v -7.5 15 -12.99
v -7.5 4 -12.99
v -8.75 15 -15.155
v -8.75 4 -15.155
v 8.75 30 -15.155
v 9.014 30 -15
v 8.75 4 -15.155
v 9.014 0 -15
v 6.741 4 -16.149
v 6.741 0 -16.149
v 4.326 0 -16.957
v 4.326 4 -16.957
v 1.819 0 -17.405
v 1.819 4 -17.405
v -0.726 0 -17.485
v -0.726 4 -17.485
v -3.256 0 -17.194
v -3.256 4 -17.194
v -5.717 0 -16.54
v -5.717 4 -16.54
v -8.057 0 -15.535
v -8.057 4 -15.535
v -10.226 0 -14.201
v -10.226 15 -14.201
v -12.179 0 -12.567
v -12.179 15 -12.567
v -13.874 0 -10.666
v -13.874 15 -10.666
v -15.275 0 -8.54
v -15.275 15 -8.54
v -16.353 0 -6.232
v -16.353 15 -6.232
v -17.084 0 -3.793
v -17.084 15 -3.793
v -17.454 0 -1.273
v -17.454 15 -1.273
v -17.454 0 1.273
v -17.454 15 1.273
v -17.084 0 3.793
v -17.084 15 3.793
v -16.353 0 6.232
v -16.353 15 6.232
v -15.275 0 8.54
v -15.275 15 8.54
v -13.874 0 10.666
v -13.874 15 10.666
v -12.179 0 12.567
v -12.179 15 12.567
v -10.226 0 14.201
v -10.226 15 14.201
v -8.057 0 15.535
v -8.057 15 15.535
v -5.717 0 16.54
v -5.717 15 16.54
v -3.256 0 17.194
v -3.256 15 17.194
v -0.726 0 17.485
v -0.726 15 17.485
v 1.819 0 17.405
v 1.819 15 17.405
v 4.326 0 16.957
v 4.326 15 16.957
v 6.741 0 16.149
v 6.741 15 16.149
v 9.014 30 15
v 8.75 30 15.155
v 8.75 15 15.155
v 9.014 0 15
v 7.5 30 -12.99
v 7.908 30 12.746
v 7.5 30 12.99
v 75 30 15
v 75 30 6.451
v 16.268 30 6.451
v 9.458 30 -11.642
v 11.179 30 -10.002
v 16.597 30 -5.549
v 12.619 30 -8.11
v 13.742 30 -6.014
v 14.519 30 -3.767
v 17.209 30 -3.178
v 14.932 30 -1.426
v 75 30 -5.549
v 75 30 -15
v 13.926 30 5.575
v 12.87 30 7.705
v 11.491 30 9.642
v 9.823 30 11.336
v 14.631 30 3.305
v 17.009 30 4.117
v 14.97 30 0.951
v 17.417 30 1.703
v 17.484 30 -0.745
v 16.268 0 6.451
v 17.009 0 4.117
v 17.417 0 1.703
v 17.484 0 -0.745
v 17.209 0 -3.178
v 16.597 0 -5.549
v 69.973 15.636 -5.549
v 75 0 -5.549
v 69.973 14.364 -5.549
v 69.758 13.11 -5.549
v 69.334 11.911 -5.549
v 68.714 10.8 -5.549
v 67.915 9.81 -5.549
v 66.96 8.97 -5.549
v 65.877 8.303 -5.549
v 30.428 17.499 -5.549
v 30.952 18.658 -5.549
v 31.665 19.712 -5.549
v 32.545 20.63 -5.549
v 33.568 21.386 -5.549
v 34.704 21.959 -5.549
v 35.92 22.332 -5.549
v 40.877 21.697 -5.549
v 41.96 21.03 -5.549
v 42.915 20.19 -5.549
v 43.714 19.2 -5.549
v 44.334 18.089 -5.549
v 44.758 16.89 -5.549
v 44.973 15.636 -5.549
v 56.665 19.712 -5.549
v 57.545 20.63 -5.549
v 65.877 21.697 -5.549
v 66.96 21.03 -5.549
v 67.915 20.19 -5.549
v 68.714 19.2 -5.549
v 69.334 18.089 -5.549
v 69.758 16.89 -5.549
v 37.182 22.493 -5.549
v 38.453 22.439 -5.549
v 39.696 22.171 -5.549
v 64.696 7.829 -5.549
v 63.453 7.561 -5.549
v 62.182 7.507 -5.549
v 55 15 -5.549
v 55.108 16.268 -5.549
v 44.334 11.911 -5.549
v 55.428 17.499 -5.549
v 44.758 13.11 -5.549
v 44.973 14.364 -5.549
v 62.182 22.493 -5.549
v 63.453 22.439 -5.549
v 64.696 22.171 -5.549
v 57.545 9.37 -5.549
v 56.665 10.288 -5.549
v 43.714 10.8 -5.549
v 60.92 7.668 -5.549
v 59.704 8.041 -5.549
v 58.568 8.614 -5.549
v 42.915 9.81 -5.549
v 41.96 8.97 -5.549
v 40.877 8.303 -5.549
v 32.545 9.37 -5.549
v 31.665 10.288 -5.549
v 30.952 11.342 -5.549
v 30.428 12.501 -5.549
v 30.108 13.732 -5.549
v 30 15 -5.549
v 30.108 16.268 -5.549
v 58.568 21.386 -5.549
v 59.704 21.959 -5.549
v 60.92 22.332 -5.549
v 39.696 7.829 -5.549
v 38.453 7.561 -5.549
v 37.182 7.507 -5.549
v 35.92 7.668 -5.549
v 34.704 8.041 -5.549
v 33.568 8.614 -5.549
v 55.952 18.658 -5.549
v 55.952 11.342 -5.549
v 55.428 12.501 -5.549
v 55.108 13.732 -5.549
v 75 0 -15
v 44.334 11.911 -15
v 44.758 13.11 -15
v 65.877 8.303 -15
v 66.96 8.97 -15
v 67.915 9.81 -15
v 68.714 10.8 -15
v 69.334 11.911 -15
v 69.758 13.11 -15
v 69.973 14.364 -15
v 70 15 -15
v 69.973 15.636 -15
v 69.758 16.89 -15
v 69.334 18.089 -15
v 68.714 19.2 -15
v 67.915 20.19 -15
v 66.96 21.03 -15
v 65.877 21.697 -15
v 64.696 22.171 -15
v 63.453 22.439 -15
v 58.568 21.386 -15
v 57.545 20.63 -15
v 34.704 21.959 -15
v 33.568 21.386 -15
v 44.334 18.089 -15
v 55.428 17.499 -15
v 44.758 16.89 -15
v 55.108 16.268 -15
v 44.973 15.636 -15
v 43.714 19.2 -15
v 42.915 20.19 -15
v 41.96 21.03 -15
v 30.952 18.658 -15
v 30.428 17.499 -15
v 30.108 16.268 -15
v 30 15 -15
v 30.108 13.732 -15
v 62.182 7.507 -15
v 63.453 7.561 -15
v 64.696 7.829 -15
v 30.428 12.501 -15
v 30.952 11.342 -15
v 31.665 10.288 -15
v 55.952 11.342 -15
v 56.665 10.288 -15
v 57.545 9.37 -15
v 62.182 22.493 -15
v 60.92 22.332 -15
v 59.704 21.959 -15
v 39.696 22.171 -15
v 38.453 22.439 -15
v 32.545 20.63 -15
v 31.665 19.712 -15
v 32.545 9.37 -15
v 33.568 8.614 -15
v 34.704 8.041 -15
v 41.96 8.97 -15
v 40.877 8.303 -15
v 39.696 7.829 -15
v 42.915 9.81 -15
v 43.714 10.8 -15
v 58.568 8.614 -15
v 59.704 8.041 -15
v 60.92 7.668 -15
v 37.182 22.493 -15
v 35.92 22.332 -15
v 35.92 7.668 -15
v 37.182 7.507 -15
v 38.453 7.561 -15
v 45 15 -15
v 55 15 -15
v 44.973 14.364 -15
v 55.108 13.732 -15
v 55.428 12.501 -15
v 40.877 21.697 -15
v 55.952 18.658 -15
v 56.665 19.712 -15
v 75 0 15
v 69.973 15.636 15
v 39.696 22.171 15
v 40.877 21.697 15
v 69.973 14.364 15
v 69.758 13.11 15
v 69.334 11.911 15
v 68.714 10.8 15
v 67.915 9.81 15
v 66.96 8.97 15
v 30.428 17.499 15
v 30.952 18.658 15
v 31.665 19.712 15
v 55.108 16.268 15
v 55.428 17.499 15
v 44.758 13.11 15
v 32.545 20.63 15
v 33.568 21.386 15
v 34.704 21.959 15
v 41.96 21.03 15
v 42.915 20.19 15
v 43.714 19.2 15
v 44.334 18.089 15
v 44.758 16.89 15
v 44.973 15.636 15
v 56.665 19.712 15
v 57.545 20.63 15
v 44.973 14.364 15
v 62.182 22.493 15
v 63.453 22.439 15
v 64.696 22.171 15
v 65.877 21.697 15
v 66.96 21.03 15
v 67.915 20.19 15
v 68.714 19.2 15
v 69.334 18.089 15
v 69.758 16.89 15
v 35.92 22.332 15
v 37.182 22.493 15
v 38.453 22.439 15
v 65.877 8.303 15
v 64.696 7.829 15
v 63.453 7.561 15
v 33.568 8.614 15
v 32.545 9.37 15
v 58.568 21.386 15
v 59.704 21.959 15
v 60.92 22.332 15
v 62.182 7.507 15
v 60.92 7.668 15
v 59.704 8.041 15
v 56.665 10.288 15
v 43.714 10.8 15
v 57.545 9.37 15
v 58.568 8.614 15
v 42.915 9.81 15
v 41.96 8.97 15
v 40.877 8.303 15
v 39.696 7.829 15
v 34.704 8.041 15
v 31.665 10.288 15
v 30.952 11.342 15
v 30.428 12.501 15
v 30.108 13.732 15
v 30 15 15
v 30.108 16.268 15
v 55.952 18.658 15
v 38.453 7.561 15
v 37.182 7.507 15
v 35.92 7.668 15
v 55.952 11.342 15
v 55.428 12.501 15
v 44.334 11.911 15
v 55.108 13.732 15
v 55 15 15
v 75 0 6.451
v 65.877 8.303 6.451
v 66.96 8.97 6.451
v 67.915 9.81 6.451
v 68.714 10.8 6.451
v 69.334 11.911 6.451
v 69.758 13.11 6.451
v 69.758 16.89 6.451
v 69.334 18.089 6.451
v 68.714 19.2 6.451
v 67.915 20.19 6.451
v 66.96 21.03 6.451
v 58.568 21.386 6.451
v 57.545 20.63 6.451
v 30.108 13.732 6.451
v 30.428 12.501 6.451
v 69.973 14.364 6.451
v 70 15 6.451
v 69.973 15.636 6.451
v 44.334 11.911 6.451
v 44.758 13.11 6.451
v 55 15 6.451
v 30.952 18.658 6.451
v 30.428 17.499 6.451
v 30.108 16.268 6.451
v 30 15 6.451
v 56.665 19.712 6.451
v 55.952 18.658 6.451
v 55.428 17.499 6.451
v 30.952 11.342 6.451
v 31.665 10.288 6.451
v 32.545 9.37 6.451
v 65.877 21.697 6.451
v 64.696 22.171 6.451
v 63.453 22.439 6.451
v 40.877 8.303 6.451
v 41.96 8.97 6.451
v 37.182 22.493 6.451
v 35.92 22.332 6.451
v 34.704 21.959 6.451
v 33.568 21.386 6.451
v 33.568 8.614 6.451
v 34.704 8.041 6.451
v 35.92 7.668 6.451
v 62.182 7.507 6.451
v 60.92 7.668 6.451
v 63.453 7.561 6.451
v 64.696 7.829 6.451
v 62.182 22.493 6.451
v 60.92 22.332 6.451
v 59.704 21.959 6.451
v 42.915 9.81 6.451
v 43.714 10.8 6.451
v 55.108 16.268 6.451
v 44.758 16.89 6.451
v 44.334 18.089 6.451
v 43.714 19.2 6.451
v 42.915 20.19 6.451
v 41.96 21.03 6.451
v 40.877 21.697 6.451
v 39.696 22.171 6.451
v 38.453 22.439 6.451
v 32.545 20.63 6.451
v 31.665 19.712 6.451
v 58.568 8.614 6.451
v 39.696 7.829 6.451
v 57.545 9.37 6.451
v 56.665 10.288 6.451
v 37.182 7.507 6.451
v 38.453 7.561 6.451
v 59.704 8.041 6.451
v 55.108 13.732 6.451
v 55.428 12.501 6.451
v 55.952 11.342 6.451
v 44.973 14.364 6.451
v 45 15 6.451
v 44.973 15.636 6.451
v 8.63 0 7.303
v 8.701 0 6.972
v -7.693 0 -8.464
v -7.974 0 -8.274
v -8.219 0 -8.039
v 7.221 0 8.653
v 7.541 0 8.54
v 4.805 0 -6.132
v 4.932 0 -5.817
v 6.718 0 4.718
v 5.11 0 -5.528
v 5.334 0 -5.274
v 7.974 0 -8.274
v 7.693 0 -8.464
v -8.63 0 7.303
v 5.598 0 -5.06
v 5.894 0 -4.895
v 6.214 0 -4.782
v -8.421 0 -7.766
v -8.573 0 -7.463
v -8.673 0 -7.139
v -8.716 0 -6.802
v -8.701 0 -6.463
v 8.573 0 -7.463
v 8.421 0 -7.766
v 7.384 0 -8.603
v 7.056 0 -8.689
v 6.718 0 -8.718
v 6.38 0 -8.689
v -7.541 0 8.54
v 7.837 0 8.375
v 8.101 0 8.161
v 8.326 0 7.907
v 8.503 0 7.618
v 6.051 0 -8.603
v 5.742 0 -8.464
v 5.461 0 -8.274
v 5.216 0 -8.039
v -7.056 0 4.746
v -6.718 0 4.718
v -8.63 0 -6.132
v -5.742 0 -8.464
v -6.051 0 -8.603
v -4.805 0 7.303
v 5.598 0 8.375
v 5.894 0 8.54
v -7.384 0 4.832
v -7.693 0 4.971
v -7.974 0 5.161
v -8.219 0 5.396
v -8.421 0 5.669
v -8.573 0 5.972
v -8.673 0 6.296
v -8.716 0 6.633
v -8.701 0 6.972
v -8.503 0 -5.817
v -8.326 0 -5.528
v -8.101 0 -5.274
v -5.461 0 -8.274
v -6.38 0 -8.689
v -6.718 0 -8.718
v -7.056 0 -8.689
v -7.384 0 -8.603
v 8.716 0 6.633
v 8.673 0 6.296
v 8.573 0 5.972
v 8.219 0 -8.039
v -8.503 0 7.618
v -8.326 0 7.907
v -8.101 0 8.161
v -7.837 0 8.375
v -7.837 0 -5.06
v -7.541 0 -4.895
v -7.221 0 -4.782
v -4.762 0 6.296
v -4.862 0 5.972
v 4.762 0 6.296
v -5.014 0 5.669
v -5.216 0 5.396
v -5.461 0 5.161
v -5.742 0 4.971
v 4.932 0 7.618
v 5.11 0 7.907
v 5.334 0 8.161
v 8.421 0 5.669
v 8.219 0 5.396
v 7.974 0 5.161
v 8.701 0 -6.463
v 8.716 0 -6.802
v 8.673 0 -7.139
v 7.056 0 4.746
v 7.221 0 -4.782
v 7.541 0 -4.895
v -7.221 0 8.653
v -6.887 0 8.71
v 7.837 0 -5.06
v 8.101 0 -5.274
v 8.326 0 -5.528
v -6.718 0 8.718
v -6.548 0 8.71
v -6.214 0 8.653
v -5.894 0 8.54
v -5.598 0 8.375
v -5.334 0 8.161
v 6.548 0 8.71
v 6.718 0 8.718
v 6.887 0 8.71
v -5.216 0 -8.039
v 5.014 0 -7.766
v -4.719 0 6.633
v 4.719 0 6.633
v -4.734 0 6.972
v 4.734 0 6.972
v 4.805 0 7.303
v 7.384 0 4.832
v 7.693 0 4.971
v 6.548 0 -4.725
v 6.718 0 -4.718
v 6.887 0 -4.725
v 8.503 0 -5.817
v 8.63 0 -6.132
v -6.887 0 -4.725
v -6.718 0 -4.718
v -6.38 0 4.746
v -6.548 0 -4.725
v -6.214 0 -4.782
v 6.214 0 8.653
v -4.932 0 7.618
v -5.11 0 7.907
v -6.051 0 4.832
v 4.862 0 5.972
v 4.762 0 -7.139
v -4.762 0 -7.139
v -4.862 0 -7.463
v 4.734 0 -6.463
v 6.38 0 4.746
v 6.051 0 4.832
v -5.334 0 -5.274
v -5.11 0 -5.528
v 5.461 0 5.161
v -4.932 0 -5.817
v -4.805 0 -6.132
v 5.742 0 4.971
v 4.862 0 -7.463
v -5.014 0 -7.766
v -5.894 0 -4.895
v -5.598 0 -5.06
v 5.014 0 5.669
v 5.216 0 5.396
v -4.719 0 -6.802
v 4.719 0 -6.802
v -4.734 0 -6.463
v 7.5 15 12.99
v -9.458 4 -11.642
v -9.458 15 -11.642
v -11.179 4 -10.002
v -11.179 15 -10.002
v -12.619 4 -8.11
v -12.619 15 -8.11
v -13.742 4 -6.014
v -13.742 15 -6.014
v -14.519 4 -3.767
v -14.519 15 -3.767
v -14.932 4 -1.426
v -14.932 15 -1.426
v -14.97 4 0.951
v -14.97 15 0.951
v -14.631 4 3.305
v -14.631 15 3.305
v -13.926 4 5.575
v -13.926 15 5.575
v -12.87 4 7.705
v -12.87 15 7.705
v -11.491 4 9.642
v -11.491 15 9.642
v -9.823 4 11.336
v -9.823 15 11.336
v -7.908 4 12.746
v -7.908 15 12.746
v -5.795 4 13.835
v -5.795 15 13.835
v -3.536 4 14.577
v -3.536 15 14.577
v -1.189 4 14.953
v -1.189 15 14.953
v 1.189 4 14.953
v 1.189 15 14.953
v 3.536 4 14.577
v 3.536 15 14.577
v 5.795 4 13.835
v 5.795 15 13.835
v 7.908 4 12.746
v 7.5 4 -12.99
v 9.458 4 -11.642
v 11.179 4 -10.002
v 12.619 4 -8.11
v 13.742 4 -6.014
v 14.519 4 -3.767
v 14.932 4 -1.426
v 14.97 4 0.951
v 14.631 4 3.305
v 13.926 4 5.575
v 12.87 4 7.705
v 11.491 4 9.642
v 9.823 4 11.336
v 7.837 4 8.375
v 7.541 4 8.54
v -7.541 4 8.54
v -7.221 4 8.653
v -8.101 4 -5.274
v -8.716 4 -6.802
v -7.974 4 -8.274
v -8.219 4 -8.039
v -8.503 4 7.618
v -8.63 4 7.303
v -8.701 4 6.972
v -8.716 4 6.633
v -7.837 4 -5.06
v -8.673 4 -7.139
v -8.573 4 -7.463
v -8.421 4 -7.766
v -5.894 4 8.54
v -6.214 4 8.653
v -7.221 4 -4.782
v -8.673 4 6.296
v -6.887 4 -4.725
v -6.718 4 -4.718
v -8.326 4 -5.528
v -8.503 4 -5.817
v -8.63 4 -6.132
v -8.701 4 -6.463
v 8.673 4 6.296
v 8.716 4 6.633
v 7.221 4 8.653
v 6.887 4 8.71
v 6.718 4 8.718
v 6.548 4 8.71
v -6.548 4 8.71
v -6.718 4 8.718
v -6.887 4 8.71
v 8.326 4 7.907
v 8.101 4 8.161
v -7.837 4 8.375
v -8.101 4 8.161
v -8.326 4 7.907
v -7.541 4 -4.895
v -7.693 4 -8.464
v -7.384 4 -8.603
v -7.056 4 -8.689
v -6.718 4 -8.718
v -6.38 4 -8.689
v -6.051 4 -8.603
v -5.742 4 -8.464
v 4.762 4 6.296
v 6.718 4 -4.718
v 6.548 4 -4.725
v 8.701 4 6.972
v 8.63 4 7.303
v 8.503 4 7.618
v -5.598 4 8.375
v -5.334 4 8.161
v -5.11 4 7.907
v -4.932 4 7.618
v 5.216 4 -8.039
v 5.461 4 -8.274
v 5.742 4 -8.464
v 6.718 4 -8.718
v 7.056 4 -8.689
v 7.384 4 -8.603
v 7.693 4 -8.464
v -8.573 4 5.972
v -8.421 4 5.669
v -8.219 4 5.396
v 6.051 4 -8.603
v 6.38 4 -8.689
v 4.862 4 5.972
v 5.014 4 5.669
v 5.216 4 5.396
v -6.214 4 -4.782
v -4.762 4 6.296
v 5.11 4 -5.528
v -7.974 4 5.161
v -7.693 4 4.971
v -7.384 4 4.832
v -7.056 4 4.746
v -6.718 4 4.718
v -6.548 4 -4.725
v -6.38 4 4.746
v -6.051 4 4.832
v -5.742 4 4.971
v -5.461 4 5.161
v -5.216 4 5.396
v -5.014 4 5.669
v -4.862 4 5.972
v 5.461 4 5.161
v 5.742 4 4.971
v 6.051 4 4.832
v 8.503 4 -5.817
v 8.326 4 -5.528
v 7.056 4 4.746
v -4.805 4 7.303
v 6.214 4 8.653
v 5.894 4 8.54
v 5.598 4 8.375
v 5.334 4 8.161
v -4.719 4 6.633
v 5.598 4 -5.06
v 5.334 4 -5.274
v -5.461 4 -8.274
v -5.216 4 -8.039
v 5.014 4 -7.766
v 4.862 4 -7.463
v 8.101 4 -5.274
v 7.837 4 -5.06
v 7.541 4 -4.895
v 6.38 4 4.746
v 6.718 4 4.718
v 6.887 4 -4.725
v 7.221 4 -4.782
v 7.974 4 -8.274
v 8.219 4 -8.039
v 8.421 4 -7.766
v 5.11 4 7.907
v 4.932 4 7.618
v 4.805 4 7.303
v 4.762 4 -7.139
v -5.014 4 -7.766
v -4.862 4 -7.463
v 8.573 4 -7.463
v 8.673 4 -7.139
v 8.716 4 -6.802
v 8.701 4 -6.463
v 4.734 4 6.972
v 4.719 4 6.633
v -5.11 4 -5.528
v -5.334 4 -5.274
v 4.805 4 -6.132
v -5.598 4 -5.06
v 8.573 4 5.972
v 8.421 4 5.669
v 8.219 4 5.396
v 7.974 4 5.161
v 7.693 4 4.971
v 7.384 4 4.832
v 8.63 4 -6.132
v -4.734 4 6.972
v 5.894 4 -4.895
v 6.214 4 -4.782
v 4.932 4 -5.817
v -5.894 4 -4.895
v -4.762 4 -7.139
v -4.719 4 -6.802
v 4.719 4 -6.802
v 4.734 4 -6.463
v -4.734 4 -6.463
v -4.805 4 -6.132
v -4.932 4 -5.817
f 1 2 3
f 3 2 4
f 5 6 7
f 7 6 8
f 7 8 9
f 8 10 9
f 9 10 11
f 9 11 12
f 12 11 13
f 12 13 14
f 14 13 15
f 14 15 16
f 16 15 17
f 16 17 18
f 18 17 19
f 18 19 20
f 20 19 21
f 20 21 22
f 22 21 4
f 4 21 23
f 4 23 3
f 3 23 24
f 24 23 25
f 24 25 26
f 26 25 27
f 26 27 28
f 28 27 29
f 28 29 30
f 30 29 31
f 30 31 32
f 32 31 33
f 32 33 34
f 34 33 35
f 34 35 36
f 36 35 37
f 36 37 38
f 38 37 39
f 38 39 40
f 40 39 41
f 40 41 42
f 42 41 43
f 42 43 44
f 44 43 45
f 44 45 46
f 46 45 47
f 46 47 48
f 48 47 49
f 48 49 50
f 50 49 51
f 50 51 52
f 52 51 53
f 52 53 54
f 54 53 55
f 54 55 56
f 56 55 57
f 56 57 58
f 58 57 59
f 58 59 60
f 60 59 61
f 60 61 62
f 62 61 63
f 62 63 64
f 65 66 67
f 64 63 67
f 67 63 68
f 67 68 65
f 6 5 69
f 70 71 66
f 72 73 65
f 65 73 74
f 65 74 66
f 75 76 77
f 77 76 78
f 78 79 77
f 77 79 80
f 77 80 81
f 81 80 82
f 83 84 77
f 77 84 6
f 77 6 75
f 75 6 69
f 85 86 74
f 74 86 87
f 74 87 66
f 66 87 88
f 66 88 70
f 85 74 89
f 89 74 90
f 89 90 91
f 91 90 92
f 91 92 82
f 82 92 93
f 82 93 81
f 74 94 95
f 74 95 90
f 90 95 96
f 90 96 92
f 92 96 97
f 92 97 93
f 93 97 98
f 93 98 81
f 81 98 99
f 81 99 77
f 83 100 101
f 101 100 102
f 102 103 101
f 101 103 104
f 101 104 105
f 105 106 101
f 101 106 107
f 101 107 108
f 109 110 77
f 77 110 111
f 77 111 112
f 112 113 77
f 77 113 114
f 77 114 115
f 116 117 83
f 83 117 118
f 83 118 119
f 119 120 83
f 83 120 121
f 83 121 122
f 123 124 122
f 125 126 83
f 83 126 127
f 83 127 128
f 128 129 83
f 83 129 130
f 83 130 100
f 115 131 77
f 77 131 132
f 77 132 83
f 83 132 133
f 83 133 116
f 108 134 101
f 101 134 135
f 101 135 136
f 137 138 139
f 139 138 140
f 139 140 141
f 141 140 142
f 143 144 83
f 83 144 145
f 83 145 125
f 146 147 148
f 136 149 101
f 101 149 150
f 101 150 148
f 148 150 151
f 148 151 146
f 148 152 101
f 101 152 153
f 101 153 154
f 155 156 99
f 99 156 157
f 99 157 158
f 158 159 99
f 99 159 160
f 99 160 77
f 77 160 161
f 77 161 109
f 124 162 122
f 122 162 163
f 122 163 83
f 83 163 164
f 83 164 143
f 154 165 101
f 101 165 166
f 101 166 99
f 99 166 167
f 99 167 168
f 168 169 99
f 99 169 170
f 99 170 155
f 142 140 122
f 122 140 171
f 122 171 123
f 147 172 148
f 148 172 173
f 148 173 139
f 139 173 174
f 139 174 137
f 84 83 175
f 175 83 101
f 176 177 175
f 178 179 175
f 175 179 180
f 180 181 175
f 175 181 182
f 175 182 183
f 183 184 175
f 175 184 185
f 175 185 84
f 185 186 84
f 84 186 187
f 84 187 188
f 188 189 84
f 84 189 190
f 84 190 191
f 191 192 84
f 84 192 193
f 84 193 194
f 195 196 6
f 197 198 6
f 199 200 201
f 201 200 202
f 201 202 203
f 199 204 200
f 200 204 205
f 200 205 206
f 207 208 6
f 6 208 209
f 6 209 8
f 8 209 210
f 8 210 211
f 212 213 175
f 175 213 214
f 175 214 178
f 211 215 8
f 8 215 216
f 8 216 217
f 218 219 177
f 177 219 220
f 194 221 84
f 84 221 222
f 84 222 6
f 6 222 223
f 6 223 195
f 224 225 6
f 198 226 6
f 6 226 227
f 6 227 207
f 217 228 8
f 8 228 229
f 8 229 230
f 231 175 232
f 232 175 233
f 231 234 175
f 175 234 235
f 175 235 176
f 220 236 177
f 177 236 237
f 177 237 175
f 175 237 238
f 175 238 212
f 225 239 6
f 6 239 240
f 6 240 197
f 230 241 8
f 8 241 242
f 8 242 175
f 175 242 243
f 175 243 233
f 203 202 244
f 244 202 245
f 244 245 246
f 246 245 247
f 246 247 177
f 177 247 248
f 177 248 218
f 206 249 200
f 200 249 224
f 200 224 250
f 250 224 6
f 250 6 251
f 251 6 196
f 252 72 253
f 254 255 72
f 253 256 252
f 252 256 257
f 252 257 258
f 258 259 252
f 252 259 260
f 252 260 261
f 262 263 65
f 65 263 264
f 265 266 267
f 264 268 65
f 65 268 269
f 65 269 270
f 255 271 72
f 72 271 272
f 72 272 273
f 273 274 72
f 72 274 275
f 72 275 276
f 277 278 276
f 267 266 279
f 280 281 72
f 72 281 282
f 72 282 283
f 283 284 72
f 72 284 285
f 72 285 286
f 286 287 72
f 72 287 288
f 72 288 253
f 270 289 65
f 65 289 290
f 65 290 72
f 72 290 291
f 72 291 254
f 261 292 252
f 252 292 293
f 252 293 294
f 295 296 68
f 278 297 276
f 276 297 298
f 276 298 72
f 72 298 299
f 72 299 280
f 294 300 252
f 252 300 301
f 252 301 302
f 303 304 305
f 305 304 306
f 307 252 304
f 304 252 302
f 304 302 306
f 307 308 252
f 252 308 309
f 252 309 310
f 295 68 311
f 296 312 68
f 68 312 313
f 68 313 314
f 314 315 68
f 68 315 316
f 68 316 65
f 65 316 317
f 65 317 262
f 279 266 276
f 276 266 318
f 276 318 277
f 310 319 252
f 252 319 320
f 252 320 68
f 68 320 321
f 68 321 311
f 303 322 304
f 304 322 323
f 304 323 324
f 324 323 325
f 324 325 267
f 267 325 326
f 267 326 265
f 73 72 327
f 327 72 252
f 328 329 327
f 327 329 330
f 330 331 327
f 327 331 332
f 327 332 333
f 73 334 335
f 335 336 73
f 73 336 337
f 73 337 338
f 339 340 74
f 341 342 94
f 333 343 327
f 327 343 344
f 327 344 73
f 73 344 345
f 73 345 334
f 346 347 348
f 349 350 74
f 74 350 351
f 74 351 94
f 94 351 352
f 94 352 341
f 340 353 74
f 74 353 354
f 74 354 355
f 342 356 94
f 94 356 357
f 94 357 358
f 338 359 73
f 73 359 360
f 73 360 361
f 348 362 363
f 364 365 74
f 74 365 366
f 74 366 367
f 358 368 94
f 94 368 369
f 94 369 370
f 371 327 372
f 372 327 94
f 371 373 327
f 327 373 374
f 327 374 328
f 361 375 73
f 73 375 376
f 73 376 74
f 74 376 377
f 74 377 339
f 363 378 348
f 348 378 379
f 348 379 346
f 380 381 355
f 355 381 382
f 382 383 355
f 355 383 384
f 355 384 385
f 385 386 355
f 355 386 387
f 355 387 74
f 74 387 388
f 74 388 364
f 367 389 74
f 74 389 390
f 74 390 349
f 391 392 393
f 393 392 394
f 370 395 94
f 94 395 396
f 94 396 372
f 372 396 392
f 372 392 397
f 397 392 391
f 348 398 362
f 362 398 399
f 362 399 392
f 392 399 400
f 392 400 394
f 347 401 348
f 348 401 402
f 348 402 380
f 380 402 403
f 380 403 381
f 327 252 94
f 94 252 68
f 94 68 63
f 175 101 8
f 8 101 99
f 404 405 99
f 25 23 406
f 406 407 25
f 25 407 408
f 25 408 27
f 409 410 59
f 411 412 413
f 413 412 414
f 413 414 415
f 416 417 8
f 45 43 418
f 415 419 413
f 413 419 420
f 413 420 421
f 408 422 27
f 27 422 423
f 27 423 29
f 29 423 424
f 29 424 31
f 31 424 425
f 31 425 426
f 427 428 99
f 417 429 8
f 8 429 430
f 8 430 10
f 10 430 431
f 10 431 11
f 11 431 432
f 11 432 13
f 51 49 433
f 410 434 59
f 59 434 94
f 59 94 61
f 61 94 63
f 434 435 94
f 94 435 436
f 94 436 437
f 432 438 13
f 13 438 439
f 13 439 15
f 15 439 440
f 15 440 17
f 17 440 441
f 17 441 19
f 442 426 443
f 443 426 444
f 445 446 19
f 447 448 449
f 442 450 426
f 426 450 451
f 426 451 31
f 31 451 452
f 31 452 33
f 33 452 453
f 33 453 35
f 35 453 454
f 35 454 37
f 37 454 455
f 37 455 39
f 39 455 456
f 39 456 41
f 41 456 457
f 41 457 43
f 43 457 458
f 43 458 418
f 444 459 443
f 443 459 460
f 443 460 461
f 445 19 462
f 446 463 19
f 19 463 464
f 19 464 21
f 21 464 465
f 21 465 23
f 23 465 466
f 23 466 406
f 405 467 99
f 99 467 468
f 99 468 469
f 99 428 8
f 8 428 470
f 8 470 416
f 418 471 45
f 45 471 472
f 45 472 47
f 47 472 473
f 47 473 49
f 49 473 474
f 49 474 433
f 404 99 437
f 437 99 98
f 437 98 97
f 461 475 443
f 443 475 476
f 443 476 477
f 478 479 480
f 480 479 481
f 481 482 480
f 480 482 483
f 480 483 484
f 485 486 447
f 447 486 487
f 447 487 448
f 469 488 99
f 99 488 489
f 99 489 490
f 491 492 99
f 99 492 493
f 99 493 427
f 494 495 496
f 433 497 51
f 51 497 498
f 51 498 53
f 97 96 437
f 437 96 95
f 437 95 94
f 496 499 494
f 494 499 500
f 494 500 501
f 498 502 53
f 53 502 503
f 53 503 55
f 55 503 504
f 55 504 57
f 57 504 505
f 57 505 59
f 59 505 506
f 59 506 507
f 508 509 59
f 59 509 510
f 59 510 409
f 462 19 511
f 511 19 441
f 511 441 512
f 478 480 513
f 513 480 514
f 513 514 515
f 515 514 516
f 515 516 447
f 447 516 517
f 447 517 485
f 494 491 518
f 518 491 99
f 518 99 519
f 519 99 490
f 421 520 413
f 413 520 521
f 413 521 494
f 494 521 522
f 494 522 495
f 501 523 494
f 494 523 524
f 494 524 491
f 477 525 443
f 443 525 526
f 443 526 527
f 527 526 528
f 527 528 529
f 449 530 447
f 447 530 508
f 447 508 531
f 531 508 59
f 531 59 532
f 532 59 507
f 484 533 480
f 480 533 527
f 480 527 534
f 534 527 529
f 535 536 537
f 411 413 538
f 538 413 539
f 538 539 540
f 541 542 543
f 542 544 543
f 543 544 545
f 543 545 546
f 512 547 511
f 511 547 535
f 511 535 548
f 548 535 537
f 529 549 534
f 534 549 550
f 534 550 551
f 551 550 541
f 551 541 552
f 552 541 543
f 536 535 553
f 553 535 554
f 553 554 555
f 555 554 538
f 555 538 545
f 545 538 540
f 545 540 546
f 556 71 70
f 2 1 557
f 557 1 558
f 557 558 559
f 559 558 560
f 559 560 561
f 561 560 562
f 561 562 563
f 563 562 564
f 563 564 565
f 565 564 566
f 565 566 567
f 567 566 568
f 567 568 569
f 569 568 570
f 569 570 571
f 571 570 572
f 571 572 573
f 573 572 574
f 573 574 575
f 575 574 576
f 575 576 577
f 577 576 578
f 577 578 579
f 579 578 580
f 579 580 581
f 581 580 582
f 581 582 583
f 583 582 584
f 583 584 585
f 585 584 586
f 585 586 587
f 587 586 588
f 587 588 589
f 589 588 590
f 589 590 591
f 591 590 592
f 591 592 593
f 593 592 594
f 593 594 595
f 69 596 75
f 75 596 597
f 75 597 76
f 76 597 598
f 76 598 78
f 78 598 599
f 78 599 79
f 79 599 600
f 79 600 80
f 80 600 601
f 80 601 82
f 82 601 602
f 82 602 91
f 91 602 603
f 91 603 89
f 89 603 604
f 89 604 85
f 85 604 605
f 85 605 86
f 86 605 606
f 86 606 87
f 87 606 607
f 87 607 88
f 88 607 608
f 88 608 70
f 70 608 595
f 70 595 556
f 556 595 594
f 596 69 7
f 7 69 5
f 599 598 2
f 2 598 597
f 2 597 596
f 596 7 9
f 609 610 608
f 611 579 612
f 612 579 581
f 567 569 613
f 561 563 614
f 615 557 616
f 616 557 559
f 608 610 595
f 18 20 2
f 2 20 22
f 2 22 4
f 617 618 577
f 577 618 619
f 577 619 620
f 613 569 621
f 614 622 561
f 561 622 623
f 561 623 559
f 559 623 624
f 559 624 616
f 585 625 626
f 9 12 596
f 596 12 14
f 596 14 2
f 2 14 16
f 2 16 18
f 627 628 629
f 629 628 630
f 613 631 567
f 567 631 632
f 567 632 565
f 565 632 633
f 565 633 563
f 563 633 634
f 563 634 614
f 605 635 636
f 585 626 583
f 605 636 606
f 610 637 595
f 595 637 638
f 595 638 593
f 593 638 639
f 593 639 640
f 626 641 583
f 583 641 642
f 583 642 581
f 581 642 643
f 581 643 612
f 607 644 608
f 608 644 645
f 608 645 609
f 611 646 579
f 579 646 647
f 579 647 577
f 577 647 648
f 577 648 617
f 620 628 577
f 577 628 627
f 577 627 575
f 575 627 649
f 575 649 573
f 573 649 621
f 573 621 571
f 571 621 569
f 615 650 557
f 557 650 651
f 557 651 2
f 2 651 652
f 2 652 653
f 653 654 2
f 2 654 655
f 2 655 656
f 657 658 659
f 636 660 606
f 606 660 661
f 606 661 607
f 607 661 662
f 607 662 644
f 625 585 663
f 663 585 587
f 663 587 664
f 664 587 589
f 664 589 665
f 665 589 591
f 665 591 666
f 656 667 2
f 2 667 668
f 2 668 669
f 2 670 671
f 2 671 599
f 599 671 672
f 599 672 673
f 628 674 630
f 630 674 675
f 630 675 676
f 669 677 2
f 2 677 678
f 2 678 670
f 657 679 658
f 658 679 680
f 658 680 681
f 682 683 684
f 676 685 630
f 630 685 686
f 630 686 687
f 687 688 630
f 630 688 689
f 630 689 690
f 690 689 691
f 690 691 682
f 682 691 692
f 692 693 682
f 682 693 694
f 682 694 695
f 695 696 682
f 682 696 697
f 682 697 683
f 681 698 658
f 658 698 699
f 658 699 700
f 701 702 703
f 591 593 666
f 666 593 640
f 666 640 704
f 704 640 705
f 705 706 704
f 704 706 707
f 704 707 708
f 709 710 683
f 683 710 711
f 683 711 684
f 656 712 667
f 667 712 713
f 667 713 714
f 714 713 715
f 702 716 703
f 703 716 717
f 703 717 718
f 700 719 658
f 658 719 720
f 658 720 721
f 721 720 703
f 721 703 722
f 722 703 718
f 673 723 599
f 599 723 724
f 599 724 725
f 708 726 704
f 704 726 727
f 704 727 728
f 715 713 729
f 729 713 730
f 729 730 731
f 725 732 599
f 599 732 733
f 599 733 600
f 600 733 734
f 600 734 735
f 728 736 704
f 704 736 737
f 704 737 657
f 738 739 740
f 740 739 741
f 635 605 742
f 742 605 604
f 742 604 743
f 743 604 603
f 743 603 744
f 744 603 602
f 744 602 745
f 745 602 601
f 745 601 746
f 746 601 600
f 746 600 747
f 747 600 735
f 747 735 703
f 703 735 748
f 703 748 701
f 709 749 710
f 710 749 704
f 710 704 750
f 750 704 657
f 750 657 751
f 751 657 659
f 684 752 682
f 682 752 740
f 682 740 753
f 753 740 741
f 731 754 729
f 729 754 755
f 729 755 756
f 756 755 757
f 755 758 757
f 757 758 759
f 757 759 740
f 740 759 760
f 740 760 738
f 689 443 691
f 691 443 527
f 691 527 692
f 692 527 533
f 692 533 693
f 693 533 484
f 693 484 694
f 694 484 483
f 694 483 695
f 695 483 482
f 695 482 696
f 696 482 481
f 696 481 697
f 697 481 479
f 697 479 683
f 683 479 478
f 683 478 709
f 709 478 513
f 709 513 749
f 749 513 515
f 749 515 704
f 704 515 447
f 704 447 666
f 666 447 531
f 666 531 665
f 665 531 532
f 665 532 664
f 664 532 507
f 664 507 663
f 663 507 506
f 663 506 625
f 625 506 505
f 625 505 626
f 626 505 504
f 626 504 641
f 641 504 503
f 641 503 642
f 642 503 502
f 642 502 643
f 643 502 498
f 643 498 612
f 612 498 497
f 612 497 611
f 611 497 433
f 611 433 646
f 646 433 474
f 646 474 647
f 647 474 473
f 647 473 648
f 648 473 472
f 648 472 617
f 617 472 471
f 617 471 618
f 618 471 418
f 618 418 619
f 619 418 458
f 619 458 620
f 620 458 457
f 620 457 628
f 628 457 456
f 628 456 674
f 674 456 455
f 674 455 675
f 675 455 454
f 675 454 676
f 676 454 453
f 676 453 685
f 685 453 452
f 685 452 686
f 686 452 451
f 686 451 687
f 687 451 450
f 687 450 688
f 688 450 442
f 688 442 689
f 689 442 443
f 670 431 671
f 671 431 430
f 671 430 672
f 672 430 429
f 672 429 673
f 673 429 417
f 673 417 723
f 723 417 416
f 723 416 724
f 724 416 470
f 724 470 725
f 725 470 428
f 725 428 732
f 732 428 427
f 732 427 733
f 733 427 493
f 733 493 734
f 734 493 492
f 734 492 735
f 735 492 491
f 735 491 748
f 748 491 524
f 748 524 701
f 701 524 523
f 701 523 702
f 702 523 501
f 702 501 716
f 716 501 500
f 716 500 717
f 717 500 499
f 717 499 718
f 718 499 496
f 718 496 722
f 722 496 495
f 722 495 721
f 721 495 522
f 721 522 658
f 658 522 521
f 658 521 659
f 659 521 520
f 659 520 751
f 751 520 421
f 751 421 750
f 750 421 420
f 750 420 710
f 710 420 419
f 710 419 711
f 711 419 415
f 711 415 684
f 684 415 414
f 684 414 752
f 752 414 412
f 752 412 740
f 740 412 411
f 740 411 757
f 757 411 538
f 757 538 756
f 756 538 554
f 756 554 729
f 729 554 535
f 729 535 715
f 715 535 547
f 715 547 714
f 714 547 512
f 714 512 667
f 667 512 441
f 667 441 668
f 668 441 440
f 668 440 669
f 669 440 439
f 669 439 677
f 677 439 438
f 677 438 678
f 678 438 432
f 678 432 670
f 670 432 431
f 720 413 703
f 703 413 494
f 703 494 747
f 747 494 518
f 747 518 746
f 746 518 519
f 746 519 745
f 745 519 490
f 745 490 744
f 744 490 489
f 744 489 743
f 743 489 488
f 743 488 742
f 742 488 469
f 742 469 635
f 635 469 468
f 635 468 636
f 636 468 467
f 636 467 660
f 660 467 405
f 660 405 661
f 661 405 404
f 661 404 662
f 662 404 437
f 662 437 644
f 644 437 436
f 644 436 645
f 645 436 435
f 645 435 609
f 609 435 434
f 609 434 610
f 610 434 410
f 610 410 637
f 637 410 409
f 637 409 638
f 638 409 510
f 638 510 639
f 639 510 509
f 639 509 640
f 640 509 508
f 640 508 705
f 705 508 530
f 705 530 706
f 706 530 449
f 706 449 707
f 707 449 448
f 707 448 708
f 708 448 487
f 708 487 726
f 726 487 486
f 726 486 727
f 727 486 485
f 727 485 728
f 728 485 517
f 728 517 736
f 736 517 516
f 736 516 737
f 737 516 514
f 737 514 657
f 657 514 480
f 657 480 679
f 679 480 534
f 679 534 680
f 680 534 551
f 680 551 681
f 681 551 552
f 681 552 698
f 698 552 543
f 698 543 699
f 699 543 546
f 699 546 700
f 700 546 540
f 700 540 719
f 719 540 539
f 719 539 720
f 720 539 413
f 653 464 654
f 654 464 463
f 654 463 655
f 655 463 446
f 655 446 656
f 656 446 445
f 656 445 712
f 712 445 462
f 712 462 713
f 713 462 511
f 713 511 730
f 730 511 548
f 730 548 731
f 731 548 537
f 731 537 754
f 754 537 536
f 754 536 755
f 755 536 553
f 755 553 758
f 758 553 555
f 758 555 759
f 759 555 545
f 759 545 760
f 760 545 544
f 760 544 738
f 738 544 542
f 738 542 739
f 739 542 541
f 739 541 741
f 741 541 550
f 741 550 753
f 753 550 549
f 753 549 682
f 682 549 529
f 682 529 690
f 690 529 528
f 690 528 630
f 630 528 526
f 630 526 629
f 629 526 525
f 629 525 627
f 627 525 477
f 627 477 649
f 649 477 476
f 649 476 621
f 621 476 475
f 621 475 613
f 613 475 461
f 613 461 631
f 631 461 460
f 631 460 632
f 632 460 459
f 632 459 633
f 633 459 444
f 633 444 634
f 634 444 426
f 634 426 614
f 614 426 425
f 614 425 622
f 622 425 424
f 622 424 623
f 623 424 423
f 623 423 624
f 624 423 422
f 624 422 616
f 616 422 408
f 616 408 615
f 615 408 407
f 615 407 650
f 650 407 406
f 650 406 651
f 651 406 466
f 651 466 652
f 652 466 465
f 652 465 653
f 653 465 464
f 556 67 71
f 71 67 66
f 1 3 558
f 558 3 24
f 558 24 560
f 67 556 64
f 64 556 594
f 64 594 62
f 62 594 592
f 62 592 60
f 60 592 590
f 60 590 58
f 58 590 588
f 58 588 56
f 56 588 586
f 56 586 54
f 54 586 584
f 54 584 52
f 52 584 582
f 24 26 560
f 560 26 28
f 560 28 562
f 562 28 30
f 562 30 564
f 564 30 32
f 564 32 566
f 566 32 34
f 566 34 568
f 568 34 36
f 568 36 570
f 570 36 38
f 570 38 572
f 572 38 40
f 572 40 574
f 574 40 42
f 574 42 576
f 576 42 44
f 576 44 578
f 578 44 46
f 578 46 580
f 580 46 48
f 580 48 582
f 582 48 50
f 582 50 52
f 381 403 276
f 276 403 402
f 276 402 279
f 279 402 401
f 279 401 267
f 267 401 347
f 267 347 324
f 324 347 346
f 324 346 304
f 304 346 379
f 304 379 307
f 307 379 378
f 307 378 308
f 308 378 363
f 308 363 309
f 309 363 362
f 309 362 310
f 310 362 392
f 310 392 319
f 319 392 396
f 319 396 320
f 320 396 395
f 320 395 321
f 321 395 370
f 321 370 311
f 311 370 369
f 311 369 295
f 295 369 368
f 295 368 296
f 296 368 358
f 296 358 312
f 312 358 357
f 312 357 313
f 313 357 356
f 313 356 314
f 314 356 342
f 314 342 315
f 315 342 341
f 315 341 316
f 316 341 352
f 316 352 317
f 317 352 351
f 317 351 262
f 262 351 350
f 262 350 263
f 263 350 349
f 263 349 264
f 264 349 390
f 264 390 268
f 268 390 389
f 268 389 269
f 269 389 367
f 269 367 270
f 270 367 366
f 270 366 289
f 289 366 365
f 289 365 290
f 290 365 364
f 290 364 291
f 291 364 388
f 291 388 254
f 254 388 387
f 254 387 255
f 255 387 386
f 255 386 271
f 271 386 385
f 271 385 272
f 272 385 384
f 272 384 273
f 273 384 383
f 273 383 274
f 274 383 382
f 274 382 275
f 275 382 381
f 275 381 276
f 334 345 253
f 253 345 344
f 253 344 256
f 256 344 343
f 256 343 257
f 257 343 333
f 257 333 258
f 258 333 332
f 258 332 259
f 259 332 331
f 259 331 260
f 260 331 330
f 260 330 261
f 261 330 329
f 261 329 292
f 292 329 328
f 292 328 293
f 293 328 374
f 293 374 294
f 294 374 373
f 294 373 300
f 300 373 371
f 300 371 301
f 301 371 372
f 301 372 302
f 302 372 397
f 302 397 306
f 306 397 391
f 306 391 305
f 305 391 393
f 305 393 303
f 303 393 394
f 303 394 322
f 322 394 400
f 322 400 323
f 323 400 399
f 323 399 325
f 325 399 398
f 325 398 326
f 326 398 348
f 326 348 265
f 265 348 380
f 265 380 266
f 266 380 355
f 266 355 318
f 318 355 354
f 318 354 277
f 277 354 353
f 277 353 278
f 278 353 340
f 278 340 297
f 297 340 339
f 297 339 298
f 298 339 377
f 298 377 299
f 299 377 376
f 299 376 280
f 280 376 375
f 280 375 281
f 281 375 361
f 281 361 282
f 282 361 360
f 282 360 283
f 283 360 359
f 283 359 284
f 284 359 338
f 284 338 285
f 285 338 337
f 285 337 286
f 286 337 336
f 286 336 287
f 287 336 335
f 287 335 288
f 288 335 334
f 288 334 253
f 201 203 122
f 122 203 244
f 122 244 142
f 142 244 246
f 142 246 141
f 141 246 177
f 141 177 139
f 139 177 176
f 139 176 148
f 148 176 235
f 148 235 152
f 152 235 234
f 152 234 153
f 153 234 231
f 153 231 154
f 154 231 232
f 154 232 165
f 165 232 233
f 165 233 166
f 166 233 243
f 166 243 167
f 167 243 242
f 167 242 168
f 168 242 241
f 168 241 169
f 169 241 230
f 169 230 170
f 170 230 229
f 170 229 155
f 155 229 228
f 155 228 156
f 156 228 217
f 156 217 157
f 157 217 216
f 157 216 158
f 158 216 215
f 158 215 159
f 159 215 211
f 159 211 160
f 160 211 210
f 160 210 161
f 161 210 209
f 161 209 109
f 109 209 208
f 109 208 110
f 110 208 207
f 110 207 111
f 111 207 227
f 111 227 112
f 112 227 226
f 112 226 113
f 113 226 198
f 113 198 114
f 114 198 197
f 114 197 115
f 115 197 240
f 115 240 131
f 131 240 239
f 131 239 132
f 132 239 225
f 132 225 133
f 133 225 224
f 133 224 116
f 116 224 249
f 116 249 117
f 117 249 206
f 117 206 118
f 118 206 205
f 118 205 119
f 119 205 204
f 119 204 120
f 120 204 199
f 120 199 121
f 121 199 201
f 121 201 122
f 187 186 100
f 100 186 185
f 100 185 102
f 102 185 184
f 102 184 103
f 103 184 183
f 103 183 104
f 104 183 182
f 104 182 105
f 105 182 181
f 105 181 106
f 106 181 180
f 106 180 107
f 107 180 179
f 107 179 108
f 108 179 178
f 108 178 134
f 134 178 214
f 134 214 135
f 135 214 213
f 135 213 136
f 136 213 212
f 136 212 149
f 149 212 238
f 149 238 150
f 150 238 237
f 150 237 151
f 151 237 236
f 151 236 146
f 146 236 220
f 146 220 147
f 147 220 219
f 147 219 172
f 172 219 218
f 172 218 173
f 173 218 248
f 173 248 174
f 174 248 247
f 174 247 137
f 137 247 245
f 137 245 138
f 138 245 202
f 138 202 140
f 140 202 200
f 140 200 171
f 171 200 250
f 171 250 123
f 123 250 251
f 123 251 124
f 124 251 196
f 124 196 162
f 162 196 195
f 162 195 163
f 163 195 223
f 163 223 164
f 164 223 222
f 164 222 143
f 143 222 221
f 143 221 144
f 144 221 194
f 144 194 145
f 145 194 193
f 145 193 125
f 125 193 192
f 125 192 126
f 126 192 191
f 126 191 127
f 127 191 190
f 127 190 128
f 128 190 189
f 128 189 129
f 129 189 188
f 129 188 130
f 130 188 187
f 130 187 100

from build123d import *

# Parameters (mm, degrees)
BOSS_EXTRUDE1_DEPTH     = 30
CUT_EXTRUDE1_START      = 4
CUT_EXTRUDE1_DEPTH      = 30
SKETCH3_R               = 2
CUT_EXTRUDE2_DEPTH      = 9.5
CUT_EXTRUDE3_START      = 15
CUT_EXTRUDE3_DEPTH      = 20
CUT_EXTRUDE4_DEPTH      = 20
CUT_EXTRUDE4_DEPTH_BACK = 20
SKETCH5_R               = 7.5


with BuildPart() as part:
    # Sketch1 → Boss-Extrude1 (new body)
    with BuildSketch(Plane(origin=(0, 0, 0), x_dir=(1, 0, 0), z_dir=(0, 1, 0))):
        with BuildLine():
            Line((9.013878189, 15), (75, 15))
            Line((75, 15), (75, 5.549099401))
            Line((75, 5.549099401), (16.596912238, 5.549099401))
            ThreePointArc((16.596912238, 5.549099401), (17.493415402, -0.480018296), (16.26763294, -6.450900599))
            Line((16.26763294, -6.450900599), (75, -6.450900599))
            Line((75, -6.450900599), (75, -15))
            Line((75, -15), (9.013878189, -15))
            ThreePointArc((9.013878189, -15), (-17.5, 0), (9.013878189, 15))
        make_face()
    extrude(amount=BOSS_EXTRUDE1_DEPTH)

    # Sketch2 → Cut-Extrude1 (cut)
    with BuildSketch(Plane(origin=(0, 0, 0), x_dir=(1, 0, 0), z_dir=(0, 1, 0)).offset(CUT_EXTRUDE1_START)):
        with BuildLine():
            Line((8.75, 15.155444566), (7.5, 12.990381057))
            ThreePointArc((7.5, 12.990381057), (0, -15), (-7.5, 12.990381057))
            Line((-7.5, 12.990381057), (-8.75, 15.155444566))
            ThreePointArc((-8.75, 15.155444566), (-4.529333289, 16.90370196), (0, 17.5))
            ThreePointArc((0, 17.5), (4.529333289, 16.90370196), (8.75, 15.155444566))
        make_face()
    extrude(amount=CUT_EXTRUDE1_DEPTH, mode=Mode.SUBTRACT)

    # Sketch3 → Cut-Extrude2 (cut)
    with BuildSketch(Plane(origin=(0, 0, 0), x_dir=(1, 0, 0), z_dir=(0, 1, 0))):
        with Locations(Location((6.717514421, 6.717514421, 0), (0, 0, 270))):
            Circle(SKETCH3_R)
        with Locations(Location((6.717514421, -6.717514421, 0), (0, 0, 270))):
            Circle(SKETCH3_R)
        with Locations(Location((-6.717514421, -6.717514421, 0), (0, 0, 270))):
            Circle(SKETCH3_R)
        with Locations(Location((-6.717514421, 6.717514421, 0), (0, 0, 270))):
            Circle(SKETCH3_R)
    extrude(amount=CUT_EXTRUDE2_DEPTH, mode=Mode.SUBTRACT)

    # Sketch4 → Cut-Extrude3 (cut)
    with BuildSketch(Plane(origin=(0, 0, 0), x_dir=(1, 0, 0), z_dir=(0, 1, 0)).offset(CUT_EXTRUDE3_START)):
        with BuildLine():
            Line((8.75, -15.155444566), (0, 0))
            Line((0, 0), (8.75, 15.155444566))
            ThreePointArc((8.75, 15.155444566), (-17.5, 0), (8.75, -15.155444566))
        make_face()
    extrude(amount=CUT_EXTRUDE3_DEPTH, mode=Mode.SUBTRACT)

    # Sketch5 → Cut-Extrude4 (cut, two sides: drawn at the far end of the back side and taken through both)
    with BuildSketch(Plane.XY.offset(-CUT_EXTRUDE4_DEPTH_BACK)):
        with Locations(Location((62.5, 15, 0), (0, 0, 180))):
            Circle(SKETCH5_R)
        with Locations(Location((37.5, 15, 0), (0, 0, 180))):
            Circle(SKETCH5_R)
    extrude(amount=CUT_EXTRUDE4_DEPTH + CUT_EXTRUDE4_DEPTH_BACK, mode=Mode.SUBTRACT)


solid = part.part
